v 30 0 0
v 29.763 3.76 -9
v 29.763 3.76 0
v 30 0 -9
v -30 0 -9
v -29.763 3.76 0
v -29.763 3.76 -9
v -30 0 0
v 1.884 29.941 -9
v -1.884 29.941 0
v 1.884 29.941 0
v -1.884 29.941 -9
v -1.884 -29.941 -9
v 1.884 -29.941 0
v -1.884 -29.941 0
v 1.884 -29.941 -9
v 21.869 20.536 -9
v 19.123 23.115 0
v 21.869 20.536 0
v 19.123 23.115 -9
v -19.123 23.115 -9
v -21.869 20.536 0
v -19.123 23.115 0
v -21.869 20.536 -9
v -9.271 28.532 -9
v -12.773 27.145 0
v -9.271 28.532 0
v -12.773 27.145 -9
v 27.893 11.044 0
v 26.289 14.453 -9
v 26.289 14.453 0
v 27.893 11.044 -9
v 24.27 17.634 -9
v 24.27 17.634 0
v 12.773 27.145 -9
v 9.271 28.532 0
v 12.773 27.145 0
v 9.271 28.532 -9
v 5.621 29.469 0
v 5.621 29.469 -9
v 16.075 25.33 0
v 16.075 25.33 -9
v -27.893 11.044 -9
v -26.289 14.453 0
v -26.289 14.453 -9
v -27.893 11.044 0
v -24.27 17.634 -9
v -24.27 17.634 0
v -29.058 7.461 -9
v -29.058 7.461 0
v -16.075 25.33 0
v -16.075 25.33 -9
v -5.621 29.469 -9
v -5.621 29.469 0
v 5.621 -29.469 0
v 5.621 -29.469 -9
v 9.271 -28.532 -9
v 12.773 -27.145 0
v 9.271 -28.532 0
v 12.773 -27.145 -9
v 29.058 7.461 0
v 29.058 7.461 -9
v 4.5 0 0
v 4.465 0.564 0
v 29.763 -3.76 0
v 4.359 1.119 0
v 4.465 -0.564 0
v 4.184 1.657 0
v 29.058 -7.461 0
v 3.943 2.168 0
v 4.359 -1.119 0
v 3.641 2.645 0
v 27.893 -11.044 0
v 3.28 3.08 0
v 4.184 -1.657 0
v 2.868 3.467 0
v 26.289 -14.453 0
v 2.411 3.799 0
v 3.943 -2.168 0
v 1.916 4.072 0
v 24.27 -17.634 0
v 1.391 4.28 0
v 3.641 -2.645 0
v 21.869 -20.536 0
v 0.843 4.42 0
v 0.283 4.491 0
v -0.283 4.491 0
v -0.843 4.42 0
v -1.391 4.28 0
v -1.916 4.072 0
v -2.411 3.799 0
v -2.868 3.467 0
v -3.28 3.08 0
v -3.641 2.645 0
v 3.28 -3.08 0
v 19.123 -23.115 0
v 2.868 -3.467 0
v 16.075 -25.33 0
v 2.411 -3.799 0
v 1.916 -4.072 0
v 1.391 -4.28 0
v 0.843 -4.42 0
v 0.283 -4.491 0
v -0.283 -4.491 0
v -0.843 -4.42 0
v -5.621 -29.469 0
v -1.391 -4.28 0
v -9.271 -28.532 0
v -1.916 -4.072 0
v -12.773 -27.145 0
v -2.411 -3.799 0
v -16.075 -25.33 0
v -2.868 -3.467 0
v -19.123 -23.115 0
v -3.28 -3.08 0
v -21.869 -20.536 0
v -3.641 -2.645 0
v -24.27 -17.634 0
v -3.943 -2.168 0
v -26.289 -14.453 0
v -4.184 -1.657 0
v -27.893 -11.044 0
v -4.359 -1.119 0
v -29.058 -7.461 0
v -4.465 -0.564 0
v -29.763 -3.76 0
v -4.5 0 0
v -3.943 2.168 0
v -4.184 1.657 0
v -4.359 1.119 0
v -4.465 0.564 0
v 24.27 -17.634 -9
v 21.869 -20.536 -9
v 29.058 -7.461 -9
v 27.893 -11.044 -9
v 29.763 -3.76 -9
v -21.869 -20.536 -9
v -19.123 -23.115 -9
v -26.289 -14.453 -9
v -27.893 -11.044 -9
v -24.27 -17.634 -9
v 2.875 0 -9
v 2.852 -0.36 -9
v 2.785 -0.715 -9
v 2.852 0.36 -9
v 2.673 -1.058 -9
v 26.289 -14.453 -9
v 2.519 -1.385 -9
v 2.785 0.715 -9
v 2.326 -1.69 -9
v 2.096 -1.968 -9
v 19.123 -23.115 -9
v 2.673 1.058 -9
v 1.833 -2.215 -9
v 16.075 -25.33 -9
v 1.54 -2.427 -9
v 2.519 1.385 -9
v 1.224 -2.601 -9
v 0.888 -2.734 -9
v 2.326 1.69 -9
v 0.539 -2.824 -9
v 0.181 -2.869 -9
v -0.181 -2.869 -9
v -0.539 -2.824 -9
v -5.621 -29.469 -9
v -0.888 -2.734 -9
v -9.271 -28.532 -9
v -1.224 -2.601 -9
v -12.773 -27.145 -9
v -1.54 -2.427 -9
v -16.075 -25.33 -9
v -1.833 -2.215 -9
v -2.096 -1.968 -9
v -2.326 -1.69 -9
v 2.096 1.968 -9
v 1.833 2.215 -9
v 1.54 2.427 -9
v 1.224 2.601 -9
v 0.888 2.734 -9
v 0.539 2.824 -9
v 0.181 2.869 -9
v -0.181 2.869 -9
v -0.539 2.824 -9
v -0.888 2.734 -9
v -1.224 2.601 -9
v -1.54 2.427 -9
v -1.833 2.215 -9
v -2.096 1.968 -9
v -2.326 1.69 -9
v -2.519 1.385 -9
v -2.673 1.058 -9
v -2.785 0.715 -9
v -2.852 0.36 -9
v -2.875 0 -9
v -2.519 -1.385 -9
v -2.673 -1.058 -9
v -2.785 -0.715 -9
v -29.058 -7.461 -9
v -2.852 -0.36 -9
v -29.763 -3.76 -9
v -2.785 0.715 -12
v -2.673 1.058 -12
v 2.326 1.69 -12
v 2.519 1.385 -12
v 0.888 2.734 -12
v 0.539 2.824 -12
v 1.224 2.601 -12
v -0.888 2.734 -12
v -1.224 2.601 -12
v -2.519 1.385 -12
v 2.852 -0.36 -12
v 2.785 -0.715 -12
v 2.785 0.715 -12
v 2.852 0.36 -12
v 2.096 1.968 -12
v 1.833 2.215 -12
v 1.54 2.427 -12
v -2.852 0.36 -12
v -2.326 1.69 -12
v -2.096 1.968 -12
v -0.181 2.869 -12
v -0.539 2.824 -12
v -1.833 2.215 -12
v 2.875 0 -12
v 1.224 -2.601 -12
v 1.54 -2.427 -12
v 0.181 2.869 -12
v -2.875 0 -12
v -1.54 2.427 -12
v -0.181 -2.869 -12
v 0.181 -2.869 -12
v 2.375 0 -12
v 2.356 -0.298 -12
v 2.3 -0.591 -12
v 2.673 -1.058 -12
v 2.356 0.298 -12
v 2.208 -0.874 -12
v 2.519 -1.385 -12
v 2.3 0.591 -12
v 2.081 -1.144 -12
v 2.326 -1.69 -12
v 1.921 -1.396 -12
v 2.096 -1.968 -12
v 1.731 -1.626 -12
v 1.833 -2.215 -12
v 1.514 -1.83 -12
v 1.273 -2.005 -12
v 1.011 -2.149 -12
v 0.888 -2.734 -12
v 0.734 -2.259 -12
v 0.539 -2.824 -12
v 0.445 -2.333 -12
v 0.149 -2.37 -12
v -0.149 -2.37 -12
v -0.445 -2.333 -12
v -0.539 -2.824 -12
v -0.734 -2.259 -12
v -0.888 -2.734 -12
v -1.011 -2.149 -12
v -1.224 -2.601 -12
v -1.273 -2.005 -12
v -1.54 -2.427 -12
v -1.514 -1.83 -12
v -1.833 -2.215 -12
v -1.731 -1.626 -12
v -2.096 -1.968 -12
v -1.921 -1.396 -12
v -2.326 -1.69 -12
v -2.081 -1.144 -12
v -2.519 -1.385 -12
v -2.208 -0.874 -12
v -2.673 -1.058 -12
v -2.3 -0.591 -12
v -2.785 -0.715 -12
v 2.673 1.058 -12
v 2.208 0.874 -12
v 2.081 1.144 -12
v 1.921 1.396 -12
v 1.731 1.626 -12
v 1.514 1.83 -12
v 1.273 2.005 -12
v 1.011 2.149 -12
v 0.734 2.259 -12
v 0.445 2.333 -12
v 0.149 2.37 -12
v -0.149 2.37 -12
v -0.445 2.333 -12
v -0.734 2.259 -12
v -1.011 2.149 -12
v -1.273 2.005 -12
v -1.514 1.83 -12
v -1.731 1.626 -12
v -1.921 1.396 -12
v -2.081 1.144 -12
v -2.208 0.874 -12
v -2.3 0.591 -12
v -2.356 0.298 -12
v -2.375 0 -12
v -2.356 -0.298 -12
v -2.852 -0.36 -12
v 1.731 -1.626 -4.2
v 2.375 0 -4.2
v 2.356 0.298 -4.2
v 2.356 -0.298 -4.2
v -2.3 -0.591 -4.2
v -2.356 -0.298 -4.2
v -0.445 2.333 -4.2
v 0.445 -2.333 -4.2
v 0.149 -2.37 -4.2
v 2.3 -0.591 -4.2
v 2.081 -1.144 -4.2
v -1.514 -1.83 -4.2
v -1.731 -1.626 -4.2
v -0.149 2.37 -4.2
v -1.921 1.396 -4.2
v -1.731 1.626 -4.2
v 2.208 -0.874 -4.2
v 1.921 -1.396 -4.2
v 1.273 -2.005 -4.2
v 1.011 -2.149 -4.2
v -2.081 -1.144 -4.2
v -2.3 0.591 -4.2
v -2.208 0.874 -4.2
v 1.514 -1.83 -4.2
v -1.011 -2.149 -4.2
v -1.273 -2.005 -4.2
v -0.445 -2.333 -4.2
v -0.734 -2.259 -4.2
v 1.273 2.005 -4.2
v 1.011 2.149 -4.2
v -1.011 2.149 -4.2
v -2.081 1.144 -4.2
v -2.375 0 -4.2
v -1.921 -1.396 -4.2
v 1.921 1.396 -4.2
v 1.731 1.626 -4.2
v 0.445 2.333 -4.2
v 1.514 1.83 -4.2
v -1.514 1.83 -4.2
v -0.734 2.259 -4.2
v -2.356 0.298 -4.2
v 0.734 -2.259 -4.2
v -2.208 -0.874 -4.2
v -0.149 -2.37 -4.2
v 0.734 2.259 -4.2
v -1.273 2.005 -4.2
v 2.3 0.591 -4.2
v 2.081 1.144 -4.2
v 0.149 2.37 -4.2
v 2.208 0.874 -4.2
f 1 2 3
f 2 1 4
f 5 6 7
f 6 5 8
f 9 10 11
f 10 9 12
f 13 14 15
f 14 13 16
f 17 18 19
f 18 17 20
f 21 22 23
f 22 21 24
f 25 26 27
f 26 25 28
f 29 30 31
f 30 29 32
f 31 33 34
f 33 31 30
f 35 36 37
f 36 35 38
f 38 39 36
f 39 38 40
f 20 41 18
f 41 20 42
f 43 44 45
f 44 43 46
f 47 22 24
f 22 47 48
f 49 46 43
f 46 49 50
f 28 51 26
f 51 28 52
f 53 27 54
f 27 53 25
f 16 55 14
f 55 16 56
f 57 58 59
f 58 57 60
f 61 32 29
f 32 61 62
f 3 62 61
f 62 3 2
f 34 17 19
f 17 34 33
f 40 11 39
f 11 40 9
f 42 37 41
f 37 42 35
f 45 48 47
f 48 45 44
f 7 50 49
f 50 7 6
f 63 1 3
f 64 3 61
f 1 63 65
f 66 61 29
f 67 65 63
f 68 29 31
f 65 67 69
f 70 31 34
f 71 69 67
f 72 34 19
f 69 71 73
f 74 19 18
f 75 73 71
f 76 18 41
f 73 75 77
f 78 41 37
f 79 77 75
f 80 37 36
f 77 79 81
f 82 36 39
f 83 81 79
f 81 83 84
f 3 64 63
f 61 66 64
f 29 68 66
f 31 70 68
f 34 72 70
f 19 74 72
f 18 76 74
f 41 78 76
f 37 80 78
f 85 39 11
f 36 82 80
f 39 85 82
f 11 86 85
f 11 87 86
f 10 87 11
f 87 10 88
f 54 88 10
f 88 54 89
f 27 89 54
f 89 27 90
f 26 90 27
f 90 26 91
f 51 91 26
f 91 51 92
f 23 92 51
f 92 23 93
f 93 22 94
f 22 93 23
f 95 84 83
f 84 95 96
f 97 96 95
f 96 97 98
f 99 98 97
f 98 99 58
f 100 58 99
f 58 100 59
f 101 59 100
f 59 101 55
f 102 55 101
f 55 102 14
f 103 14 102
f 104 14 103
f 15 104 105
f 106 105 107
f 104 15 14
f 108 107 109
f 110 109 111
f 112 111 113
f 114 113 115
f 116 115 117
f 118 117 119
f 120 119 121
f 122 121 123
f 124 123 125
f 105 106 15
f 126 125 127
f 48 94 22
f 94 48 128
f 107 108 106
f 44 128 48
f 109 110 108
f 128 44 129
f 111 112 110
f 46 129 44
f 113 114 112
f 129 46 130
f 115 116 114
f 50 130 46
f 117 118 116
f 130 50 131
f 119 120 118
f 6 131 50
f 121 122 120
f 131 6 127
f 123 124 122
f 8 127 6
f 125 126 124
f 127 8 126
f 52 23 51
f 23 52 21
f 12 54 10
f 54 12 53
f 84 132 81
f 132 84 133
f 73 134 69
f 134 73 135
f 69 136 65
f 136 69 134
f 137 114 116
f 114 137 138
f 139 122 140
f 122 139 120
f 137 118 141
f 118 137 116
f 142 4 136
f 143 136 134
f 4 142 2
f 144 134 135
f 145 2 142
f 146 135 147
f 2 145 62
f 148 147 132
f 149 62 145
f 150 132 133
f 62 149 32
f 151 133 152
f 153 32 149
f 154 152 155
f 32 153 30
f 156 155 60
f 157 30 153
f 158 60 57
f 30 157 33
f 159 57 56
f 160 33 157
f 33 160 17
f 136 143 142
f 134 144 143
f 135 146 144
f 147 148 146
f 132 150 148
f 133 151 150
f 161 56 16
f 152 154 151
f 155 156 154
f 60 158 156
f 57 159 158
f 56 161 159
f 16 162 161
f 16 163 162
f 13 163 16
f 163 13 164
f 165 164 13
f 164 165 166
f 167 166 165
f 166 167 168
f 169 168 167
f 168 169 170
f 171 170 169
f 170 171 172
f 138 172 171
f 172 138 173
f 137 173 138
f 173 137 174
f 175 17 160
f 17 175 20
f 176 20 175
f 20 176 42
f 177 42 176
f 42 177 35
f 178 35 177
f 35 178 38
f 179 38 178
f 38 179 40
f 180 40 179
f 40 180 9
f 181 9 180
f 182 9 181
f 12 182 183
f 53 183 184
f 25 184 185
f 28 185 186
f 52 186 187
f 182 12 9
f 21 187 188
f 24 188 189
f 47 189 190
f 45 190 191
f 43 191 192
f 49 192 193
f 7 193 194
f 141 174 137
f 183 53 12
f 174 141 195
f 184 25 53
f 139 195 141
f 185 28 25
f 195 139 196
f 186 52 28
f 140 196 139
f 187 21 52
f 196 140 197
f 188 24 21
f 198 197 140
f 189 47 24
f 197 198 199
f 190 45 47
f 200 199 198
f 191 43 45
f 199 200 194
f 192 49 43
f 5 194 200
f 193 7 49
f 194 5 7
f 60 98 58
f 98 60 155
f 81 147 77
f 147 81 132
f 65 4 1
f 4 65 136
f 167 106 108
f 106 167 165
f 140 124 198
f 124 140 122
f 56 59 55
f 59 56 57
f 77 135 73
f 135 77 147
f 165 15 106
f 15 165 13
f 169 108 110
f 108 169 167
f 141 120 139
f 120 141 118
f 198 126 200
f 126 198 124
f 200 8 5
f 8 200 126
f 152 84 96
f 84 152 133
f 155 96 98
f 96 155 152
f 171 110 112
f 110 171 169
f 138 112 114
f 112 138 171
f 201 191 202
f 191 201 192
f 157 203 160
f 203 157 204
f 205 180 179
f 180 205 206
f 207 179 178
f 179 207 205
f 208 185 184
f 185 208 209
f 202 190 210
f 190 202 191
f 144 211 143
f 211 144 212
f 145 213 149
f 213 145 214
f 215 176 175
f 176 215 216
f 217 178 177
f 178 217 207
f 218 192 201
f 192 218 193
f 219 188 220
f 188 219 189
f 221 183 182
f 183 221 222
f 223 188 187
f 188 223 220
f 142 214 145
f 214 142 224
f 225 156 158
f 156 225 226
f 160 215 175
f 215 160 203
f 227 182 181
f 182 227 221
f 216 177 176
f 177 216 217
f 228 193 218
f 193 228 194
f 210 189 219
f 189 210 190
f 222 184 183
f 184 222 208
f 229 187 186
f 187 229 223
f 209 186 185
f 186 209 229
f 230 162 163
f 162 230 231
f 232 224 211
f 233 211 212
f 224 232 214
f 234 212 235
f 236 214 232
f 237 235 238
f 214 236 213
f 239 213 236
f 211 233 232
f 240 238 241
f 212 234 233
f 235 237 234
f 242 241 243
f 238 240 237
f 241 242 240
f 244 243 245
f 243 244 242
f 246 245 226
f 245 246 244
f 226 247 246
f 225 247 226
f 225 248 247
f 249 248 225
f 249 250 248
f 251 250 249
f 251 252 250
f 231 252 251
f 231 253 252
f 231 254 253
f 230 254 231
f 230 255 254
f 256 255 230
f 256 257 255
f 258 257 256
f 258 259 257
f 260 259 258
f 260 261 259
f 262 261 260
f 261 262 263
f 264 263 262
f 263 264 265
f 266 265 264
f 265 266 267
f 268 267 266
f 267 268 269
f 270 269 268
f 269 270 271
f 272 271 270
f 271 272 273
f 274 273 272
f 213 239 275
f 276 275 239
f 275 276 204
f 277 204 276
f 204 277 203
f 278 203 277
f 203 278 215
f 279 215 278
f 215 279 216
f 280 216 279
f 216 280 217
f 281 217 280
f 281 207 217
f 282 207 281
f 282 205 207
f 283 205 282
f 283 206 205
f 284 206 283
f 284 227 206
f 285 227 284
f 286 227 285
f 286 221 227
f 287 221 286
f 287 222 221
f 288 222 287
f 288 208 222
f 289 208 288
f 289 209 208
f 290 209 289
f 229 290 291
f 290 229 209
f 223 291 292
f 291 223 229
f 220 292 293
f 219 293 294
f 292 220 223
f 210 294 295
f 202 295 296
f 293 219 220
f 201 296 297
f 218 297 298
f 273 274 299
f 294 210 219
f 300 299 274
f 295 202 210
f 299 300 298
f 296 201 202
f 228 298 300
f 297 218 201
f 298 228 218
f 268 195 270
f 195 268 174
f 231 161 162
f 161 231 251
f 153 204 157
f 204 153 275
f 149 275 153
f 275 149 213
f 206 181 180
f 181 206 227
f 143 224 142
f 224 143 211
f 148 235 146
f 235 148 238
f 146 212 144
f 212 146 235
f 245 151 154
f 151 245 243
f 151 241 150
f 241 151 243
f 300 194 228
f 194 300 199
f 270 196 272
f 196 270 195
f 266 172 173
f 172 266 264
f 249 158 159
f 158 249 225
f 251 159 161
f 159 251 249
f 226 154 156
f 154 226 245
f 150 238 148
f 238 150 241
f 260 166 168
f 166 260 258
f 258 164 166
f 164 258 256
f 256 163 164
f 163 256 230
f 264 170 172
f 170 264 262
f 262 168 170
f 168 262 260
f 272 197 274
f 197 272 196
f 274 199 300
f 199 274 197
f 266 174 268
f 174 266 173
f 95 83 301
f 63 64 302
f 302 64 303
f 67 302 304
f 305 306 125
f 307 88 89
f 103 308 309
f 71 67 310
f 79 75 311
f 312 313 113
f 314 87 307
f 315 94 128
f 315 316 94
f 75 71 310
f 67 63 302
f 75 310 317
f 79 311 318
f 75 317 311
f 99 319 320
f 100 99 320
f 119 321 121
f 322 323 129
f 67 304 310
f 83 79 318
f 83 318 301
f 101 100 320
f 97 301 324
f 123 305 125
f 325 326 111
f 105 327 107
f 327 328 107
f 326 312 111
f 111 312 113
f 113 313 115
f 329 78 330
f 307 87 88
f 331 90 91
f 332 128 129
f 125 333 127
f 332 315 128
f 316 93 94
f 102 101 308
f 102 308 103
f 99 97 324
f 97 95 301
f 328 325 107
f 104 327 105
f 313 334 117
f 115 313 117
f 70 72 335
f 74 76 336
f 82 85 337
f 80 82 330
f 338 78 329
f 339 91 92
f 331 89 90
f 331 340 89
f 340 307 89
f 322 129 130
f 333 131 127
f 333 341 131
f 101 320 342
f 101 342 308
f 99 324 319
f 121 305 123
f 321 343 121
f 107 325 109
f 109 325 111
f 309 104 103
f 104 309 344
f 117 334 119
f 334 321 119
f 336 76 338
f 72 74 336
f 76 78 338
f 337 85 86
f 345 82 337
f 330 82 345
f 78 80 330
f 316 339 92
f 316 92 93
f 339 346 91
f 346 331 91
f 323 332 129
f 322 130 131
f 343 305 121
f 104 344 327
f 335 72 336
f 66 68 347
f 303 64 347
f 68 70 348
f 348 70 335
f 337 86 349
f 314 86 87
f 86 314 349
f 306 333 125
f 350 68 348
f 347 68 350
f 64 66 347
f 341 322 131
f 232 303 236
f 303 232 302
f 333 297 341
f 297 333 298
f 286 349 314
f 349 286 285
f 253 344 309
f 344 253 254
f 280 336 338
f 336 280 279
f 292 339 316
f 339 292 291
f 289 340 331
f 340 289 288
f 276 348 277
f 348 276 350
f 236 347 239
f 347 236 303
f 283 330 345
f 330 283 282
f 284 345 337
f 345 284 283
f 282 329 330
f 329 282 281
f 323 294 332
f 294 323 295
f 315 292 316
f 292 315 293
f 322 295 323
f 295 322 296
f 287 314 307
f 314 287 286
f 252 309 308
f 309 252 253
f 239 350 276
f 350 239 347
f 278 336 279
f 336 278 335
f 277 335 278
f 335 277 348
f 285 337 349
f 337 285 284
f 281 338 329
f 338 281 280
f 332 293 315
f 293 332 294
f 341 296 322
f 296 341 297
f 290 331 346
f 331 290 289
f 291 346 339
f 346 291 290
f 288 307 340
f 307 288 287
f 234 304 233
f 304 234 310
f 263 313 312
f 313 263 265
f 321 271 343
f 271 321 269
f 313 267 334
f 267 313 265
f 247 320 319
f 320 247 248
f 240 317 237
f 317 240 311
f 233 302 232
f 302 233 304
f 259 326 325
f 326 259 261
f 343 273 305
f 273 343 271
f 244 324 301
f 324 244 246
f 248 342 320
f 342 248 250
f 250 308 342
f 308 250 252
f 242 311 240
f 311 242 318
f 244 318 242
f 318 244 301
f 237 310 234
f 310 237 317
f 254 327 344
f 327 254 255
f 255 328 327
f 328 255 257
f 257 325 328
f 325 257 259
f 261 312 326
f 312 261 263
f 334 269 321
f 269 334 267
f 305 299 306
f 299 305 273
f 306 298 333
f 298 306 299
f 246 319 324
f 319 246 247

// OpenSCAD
$fn = 50;


difference() {
	union() {
		translate(v = [0, 0, -9.0000000000]) {
			cylinder(h = 9, r = 30.0000000000);
		}
		translate(v = [0, 0, -12.0000000000]) {
			cylinder(h = 12, r = 2.8750000000);
		}
	}
	union() {
		translate(v = [0, 0, 0]) {
			rotate(a = [0, 0, 0]) {
				difference() {
					union() {
						translate(v = [0, 0, -12.0000000000]) {
							cylinder(h = 12, r = 2.2500000000);
						}
						translate(v = [0, 0, -4.2000000000]) {
							cylinder(h = 4.2000000000, r1 = 2.3750000000, r2 = 4.5000000000);
						}
						translate(v = [0, 0, -12.0000000000]) {
							cylinder(h = 12, r = 2.3750000000);
						}
						translate(v = [0, 0, -12.0000000000]) {
							cylinder(h = 12, r = 2.2500000000);
						}
					}
					union();
				}
			}
		}
	}
}
